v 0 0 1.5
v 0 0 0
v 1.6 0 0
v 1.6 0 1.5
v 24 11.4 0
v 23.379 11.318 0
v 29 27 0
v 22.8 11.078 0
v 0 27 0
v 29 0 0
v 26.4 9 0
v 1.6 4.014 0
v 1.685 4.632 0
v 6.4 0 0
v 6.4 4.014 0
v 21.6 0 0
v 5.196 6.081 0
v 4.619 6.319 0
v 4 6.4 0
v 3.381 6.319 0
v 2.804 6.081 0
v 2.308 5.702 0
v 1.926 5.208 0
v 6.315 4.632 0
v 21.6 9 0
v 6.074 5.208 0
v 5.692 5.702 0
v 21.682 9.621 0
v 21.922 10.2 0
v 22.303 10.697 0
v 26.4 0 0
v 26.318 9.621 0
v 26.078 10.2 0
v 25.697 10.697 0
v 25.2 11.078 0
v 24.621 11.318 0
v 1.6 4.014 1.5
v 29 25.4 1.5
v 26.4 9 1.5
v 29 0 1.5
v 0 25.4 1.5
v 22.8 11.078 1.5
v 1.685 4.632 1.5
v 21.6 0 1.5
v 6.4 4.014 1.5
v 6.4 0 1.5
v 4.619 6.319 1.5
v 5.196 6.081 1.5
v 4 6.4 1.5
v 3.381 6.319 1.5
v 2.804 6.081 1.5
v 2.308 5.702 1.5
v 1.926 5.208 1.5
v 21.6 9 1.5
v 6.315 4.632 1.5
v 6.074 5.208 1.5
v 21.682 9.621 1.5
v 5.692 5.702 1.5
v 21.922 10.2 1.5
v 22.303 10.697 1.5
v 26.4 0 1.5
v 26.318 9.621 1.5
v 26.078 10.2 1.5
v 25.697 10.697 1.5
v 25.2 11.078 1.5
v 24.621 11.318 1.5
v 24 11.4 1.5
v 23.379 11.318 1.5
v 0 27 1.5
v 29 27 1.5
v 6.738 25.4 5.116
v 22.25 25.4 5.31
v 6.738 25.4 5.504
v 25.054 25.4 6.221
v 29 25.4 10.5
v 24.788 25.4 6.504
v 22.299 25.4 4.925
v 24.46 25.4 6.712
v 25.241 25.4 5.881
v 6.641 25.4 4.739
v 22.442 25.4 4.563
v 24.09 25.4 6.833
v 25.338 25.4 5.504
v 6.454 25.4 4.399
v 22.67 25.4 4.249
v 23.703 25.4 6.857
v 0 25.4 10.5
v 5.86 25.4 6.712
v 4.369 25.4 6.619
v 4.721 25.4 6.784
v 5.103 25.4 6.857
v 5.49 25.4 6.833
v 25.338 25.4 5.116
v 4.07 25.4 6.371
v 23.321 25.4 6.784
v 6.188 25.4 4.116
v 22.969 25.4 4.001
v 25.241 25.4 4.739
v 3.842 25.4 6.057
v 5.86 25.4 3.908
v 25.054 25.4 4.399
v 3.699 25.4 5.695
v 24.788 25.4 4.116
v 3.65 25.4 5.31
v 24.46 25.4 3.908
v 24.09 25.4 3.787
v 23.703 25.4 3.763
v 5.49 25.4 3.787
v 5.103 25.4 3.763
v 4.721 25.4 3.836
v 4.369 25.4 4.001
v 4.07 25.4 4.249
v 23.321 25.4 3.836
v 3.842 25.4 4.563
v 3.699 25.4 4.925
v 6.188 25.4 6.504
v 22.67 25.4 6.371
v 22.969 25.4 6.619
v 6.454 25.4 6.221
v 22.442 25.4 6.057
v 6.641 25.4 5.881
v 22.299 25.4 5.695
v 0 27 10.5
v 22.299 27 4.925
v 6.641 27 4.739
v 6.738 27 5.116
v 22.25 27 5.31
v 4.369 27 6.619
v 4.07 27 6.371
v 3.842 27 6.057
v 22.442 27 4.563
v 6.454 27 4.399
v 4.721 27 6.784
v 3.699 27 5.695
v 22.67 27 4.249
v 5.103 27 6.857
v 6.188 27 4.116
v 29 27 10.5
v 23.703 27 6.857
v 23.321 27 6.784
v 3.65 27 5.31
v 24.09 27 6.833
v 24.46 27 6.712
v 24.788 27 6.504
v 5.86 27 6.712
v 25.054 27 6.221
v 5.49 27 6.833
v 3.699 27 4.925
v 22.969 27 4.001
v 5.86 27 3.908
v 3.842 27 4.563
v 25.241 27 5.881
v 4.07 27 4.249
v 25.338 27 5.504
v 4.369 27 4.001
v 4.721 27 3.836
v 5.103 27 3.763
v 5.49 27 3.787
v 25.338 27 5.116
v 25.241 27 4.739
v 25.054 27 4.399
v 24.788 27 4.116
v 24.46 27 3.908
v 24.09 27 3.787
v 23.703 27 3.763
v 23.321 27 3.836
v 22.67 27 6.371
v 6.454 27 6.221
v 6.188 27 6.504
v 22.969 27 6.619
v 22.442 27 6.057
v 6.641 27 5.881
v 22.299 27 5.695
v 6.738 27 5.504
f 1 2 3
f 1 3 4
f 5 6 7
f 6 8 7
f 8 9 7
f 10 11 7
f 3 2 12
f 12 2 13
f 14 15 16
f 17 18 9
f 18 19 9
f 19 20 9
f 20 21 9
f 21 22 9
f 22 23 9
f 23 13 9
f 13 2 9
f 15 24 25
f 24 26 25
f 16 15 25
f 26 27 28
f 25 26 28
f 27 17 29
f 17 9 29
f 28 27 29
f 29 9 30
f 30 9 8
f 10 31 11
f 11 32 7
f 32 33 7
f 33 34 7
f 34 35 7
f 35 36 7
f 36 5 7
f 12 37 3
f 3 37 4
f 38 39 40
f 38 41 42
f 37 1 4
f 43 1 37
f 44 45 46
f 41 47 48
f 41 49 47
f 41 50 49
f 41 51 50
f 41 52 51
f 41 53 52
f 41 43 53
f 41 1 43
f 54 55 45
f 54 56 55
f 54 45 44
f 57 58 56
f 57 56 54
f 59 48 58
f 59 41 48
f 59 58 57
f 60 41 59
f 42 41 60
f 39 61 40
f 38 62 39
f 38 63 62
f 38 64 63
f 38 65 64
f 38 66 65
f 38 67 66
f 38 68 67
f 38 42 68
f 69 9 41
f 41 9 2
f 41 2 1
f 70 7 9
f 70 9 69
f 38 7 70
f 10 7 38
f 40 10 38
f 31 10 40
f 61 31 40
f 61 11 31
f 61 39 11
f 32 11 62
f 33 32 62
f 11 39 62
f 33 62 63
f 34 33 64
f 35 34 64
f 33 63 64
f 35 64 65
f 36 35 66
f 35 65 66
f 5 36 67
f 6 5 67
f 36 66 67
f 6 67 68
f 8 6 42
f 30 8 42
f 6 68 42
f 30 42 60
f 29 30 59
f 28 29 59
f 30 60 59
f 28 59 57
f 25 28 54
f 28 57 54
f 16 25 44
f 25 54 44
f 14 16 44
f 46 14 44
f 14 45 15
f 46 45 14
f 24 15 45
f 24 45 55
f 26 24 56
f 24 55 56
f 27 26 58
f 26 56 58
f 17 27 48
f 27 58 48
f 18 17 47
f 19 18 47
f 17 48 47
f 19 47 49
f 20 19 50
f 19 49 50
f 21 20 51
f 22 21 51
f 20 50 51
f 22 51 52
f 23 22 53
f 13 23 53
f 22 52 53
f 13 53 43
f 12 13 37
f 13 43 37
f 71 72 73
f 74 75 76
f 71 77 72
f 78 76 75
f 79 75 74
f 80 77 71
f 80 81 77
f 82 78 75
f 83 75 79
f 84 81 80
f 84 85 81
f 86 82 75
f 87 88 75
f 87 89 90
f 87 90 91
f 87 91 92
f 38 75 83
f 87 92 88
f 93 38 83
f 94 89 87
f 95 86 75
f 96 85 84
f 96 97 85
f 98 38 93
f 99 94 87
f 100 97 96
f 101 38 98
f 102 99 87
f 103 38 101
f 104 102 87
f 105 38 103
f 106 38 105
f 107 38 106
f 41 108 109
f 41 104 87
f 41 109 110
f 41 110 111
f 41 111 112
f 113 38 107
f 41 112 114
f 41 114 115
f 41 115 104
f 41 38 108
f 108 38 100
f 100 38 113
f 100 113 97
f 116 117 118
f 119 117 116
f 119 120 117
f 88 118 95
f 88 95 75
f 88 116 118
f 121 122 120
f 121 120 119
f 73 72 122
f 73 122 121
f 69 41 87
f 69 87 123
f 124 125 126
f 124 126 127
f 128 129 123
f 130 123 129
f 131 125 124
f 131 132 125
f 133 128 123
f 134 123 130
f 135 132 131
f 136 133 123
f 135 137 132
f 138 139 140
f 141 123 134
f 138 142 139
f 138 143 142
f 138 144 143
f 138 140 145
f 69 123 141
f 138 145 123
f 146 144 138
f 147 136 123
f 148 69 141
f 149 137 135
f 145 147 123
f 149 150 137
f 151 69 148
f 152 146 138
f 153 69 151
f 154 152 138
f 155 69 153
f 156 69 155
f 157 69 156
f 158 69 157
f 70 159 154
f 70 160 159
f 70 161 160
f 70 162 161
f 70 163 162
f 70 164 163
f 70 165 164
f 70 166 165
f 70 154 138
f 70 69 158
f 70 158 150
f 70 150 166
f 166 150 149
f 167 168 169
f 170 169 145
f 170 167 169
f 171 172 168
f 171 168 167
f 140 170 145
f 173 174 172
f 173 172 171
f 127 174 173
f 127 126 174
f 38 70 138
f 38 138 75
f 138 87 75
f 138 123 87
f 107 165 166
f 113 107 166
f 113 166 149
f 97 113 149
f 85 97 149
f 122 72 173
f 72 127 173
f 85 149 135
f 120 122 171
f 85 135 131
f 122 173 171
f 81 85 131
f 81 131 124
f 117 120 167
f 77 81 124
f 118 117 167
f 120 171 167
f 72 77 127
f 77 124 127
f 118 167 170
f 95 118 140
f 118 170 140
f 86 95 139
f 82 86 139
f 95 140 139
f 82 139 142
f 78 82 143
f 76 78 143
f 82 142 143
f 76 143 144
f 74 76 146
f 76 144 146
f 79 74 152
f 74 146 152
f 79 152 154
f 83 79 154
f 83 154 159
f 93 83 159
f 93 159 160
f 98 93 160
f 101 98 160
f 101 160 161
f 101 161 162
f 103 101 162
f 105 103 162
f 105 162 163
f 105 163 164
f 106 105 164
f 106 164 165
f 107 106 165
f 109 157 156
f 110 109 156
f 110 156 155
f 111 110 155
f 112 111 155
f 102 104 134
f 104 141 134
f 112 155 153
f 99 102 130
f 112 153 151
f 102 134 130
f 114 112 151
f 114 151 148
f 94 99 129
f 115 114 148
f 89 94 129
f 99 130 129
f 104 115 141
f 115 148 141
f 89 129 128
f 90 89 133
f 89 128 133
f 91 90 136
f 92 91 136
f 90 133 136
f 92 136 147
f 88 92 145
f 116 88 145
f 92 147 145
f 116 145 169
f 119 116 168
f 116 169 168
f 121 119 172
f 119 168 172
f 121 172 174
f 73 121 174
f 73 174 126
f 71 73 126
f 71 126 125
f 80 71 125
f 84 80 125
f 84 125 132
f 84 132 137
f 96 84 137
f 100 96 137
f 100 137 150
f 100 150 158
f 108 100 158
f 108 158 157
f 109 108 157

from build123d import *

# Parameters (mm, degrees)
BOX_W           = 29
BOX_H           = 27
BOX_DEPTH       = 1.5
POCKET_DEPTH    = 1.501
SKETCH001_W     = 29
SKETCH001_H     = 1.6
PAD_DEPTH       = 9
SKETCH002_R     = 1.55
POCKET001_DEPTH = 27.001


with BuildPart() as part:
    # Box → Box (new body)
    with BuildSketch(Plane.XY):
        with Locations((14.5, 13.5)):
            Rectangle(BOX_W, BOX_H)
    extrude(amount=BOX_DEPTH)

    # Sketch → Pocket (cut, through all)
    with BuildSketch(Plane.XY.offset(1.5)):
        with BuildLine():
            ThreePointArc((6.399962, 4.013566), (4, 6.4), (1.600038, 4.013566))
            Line((1.600038, 4.013566), (1.600038, 0))
            Line((1.600038, 0), (6.399962, 0))
            Line((6.399962, 4.013566), (6.399962, 0))
        make_face()
        with BuildLine():
            Line((21.6, 8.999953), (21.6, 0))
            Line((21.6, 0), (26.4, 0))
            Line((26.4, 8.999953), (26.4, 0))
            ThreePointArc((26.4, 8.999953), (24, 11.4), (21.6, 8.999953))
        make_face()
    extrude(amount=-POCKET_DEPTH, mode=Mode.SUBTRACT)

    # Sketch001 → Pad (new body)
    with BuildSketch(Plane.XY.offset(1.5)):
        with Locations((14.5, 26.2)):
            Rectangle(SKETCH001_W, SKETCH001_H)
    extrude(amount=PAD_DEPTH)

    # Sketch002 → Pocket001 (cut, through all)
    with BuildSketch(Plane(origin=(0, 27, 0), x_dir=(-1, 0, 0), z_dir=(0, 1, 0))):
        with Locations((-23.8, 5.31)):
            Circle(SKETCH002_R)
        with Locations((-5.2, 5.31)):
            Circle(SKETCH002_R)
    extrude(amount=-POCKET001_DEPTH, mode=Mode.SUBTRACT)


solid = part.part
